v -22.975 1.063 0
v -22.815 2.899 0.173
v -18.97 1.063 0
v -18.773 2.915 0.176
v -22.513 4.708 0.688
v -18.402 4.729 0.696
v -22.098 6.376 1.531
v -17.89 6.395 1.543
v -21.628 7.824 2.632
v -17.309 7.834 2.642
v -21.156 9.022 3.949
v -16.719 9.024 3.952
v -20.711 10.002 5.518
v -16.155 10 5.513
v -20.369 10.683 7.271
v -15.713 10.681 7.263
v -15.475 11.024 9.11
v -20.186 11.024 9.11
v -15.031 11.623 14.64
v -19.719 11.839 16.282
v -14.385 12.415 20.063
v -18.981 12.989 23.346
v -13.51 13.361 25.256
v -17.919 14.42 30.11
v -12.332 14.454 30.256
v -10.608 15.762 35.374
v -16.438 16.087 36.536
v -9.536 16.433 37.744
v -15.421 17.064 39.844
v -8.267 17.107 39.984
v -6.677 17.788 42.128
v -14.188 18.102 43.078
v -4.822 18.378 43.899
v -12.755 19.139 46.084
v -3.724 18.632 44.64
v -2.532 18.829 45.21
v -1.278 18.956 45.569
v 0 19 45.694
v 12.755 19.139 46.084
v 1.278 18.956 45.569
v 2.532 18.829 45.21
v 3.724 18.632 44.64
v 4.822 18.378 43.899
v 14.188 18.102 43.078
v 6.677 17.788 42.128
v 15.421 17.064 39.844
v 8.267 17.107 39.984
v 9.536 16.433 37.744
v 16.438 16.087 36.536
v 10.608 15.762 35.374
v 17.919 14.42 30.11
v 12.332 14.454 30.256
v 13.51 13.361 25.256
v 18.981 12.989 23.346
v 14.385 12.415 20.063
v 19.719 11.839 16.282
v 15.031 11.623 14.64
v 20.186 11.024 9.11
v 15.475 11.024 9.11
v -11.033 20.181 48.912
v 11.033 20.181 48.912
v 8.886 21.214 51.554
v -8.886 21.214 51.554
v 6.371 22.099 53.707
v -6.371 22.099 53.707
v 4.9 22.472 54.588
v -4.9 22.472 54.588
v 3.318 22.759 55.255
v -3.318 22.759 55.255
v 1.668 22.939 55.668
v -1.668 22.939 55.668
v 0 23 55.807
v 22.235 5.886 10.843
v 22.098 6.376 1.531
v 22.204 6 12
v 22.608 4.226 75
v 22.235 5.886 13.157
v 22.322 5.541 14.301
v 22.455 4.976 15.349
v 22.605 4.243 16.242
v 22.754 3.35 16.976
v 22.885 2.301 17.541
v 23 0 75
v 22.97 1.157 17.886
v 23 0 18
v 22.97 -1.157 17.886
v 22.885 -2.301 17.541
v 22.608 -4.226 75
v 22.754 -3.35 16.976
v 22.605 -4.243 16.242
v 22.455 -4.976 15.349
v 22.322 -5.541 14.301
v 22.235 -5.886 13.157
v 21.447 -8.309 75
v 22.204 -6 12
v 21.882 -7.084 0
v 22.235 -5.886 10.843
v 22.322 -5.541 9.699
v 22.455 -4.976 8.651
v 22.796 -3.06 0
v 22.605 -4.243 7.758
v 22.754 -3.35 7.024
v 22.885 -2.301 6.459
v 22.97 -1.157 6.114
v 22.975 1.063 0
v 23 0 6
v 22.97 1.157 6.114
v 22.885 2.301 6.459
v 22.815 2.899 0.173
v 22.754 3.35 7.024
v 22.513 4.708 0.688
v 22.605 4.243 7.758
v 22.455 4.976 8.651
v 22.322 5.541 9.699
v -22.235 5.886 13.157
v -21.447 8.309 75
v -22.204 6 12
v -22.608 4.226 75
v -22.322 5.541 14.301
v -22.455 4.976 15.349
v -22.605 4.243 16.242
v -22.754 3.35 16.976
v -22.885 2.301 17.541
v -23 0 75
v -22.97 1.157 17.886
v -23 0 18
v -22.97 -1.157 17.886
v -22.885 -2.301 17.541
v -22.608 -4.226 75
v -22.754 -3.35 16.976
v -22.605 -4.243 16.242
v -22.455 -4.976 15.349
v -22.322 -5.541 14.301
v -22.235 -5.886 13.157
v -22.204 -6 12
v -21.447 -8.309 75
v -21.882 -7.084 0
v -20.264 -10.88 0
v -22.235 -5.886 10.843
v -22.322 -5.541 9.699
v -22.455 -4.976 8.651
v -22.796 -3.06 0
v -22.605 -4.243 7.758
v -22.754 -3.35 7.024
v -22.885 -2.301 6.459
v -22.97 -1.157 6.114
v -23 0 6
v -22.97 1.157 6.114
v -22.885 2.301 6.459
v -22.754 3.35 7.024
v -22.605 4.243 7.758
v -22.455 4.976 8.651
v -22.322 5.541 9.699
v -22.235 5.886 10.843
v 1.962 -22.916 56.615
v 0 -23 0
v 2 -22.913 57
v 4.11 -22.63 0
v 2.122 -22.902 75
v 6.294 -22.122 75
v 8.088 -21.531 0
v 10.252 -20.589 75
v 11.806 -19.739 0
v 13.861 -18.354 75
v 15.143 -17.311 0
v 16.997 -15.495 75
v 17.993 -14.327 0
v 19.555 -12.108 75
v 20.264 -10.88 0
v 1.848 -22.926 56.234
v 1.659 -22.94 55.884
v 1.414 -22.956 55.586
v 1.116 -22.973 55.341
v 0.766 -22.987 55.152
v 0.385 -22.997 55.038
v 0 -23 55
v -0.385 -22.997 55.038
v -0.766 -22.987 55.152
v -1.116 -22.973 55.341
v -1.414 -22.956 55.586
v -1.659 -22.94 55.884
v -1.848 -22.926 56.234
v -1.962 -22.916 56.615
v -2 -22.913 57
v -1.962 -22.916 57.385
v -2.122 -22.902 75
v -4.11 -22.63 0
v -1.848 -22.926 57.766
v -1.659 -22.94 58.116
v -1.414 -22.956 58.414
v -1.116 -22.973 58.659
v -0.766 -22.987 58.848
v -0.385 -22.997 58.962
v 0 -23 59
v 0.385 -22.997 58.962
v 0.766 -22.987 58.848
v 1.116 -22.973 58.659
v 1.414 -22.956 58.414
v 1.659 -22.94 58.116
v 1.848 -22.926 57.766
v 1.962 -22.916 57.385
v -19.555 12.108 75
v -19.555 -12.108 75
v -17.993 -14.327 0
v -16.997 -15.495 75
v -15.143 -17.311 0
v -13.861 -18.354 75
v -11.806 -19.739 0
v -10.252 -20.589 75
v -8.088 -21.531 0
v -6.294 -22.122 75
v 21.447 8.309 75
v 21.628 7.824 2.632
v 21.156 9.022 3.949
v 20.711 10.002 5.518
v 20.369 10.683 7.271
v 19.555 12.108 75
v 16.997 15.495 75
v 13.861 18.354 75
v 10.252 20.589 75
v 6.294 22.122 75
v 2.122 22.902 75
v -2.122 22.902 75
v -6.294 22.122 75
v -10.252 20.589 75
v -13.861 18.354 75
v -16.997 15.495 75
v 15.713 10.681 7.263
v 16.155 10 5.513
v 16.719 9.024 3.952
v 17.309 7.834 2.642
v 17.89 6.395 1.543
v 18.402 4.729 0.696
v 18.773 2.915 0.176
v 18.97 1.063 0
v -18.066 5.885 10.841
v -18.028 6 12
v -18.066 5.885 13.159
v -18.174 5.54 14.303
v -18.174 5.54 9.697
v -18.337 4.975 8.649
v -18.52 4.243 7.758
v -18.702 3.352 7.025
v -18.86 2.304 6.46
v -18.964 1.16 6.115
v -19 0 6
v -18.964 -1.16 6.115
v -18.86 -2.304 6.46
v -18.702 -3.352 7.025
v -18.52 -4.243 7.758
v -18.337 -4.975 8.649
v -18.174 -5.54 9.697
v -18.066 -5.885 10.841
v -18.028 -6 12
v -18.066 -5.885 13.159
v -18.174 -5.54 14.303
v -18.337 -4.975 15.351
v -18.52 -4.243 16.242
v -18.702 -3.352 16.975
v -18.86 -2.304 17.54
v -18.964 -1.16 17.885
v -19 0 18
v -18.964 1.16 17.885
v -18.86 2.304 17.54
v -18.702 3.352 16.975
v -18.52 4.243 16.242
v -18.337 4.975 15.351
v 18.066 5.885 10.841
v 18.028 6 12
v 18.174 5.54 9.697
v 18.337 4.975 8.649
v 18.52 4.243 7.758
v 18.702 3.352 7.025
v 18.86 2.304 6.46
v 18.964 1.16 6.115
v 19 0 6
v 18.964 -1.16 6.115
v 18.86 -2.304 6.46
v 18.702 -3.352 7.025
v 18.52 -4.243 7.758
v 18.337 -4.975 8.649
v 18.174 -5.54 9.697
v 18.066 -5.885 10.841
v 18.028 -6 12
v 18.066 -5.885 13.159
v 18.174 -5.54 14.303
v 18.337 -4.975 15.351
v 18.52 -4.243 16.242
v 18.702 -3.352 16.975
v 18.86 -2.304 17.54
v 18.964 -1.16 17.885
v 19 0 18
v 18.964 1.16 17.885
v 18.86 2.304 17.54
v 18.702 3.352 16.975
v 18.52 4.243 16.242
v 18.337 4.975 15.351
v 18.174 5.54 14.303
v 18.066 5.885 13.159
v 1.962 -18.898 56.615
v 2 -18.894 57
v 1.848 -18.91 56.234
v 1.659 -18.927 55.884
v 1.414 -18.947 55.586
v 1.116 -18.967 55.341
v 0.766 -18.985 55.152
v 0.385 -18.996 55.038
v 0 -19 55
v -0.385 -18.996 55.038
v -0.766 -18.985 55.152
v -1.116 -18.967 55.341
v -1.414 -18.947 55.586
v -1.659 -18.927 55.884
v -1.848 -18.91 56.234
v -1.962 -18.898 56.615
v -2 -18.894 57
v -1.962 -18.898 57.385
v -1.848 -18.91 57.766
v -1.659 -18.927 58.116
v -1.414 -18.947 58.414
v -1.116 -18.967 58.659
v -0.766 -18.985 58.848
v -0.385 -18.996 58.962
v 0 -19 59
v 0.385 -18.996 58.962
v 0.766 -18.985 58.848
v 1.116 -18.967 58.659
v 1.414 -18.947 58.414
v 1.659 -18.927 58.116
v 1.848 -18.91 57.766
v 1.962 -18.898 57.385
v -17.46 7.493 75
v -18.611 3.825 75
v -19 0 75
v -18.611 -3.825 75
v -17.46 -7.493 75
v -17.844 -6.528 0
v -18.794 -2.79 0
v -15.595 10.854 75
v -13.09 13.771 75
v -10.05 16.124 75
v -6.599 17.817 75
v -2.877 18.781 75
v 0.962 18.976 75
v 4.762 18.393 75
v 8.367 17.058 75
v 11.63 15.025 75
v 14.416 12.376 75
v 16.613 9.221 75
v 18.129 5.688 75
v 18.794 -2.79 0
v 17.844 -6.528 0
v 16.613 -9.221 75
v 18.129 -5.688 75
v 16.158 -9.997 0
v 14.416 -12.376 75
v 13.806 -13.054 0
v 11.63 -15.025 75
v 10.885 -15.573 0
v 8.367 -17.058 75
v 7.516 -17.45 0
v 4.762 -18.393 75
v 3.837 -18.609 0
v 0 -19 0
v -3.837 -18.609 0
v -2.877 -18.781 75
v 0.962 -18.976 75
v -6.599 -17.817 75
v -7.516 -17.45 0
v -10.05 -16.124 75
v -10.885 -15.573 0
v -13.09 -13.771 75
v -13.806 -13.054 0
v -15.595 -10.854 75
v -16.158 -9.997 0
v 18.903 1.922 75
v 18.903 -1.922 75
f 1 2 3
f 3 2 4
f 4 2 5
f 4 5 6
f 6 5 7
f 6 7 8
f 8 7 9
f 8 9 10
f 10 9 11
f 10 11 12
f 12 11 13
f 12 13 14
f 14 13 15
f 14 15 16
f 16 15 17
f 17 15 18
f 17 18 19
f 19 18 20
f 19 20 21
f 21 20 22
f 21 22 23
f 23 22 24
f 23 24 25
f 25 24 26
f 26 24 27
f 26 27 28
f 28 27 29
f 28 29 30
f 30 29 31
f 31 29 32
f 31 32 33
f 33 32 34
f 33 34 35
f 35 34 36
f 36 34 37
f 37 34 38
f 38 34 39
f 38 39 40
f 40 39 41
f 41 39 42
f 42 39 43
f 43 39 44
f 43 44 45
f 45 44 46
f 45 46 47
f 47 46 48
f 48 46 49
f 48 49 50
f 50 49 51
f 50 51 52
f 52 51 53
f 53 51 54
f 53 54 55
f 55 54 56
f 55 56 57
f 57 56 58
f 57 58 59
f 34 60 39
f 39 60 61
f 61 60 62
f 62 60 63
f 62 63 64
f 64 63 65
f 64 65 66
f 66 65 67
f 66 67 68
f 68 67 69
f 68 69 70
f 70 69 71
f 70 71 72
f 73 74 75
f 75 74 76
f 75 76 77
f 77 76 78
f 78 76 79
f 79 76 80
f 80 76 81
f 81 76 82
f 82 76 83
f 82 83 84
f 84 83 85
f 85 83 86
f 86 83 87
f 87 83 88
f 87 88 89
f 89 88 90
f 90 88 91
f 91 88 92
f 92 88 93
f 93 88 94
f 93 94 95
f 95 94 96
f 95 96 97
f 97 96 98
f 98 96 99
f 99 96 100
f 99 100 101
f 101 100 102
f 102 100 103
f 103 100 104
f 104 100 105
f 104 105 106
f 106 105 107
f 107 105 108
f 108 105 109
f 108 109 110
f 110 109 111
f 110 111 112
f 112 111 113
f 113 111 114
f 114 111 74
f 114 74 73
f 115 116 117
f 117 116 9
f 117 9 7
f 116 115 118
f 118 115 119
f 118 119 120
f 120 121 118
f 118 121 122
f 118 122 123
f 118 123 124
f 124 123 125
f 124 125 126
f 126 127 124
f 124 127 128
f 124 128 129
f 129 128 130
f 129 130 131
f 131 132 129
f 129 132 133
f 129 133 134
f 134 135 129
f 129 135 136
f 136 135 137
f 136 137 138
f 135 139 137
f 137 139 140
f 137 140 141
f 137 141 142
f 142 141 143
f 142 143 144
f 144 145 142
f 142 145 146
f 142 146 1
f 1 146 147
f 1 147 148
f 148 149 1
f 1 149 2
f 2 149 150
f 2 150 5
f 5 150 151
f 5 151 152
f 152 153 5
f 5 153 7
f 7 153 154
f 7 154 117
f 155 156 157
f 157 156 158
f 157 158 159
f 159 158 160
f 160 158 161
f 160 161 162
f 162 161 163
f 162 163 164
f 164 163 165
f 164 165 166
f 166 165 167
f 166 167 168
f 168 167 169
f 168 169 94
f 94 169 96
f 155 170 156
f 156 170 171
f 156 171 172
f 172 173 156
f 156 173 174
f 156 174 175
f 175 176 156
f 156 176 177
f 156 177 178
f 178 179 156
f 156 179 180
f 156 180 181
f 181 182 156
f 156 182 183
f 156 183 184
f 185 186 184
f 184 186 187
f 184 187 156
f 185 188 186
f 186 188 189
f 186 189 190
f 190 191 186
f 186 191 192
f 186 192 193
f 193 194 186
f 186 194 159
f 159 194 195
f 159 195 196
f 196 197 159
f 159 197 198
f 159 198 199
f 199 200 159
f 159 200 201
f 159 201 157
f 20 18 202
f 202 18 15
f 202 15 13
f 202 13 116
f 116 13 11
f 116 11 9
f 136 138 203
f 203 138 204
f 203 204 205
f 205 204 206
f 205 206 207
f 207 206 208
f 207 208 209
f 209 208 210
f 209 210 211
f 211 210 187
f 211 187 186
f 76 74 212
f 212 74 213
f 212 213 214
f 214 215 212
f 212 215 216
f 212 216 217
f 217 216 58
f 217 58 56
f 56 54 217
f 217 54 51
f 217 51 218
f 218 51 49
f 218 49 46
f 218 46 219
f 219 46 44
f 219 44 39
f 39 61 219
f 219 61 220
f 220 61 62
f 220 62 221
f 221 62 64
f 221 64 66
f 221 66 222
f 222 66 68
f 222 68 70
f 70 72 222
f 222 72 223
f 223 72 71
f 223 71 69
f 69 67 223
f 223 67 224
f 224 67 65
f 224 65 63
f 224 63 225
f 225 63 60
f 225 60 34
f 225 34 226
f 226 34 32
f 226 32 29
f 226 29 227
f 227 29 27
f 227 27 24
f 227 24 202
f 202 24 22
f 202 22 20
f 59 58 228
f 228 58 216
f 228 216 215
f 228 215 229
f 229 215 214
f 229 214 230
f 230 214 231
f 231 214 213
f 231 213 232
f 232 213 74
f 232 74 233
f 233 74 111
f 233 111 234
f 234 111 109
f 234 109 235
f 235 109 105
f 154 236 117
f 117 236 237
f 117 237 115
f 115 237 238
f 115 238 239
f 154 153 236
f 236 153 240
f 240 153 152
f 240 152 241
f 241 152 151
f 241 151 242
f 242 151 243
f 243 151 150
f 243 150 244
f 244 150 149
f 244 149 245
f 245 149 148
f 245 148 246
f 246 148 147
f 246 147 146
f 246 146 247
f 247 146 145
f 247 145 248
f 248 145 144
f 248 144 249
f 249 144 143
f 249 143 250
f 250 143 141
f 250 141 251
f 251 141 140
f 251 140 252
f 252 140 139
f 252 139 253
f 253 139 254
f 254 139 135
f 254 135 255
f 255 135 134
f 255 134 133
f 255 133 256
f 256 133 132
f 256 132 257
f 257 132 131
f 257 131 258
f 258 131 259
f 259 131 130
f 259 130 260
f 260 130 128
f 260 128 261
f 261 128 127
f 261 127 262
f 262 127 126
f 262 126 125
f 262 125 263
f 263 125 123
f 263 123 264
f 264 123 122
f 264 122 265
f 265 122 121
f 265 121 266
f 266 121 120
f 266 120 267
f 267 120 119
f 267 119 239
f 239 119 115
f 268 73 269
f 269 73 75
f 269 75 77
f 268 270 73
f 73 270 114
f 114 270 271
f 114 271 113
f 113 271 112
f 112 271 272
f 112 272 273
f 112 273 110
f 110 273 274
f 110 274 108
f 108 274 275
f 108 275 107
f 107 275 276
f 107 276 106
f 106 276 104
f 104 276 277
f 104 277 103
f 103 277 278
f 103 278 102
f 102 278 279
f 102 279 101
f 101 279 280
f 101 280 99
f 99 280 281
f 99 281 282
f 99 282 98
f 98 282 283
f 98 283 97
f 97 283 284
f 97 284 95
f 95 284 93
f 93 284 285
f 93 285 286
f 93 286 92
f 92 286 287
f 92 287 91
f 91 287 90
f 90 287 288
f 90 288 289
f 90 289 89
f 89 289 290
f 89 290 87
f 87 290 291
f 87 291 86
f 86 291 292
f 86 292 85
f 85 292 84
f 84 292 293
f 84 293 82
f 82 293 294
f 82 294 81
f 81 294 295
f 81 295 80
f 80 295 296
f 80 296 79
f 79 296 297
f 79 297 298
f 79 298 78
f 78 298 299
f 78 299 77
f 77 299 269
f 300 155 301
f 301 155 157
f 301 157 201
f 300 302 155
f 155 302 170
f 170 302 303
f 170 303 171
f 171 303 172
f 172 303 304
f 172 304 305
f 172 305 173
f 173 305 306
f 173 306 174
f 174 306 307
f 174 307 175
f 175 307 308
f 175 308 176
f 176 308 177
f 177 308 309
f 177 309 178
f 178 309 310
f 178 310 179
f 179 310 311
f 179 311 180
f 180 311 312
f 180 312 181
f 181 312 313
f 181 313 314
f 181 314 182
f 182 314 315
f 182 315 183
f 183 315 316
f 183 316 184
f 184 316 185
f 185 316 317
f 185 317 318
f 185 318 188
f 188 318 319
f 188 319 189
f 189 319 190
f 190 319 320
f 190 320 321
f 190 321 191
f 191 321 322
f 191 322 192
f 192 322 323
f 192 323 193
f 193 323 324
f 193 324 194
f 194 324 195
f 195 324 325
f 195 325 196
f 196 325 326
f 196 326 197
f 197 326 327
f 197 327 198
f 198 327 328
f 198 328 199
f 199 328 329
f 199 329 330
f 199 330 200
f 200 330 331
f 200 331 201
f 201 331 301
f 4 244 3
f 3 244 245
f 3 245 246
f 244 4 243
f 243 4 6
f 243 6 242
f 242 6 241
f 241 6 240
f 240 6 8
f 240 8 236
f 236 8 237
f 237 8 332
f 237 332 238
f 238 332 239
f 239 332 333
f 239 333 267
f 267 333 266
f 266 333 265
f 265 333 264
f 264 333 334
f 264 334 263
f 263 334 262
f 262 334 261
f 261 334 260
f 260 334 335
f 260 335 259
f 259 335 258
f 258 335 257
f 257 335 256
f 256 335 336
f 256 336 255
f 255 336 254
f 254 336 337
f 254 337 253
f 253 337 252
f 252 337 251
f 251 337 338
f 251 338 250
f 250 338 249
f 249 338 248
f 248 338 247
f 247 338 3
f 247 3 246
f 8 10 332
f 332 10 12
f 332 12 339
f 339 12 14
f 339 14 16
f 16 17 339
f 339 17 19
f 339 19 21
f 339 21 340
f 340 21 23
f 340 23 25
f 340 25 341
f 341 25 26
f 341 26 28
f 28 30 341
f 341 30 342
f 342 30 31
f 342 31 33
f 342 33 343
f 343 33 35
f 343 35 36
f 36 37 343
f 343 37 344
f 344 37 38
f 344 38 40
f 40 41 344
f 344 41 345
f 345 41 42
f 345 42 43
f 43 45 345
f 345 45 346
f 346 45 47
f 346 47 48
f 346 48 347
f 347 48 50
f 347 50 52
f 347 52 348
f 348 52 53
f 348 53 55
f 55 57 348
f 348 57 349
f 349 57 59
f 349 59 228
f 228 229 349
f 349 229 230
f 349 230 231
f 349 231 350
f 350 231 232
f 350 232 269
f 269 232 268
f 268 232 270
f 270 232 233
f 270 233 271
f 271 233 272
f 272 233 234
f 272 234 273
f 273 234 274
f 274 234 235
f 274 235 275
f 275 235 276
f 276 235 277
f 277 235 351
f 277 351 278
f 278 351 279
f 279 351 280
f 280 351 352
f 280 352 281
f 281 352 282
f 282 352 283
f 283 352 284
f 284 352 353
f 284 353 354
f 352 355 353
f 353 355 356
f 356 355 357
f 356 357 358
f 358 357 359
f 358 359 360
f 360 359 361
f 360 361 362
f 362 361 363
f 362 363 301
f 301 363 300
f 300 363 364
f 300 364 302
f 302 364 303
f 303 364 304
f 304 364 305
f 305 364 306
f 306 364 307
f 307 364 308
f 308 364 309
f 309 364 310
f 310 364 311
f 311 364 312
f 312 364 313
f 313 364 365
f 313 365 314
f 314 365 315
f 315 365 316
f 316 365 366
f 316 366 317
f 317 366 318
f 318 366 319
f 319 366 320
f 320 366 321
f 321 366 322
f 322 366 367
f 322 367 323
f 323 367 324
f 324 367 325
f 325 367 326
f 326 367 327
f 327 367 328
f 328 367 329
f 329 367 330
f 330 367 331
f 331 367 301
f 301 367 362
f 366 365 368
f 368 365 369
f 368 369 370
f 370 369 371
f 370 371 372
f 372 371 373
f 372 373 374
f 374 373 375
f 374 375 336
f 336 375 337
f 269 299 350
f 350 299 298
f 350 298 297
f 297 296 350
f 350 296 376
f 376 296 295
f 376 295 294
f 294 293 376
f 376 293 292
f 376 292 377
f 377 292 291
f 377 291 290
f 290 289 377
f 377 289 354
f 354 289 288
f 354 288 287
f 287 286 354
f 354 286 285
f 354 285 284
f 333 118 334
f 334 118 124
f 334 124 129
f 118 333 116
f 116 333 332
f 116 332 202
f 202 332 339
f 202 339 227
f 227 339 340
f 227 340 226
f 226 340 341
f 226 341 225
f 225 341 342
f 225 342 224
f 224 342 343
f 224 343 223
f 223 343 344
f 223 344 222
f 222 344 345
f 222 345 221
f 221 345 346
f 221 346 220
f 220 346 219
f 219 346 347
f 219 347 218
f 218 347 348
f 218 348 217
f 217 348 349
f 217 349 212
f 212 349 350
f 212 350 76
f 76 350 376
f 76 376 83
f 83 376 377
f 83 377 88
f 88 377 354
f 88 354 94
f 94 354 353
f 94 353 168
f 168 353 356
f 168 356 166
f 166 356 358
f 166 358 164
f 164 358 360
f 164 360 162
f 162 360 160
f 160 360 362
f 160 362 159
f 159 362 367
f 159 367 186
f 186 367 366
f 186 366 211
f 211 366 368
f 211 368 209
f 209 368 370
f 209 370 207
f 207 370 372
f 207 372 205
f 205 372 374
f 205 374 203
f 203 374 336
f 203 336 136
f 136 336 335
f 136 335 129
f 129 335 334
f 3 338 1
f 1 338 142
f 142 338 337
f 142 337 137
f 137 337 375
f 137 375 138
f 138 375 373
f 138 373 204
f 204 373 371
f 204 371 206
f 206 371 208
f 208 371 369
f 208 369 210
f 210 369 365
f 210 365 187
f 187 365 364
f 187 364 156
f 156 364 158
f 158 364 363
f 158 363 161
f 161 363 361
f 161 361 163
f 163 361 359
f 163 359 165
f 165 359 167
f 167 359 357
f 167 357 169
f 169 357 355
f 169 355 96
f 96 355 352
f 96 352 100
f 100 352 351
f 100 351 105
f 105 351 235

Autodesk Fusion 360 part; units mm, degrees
sketch "Esboço1" plane through (0, 0, 0) normal (0, 0, 1) x (1, 0, 0)
  circle A0 centre (0, 0) radius 19
  circle A1 centre (0, 0) radius 23
  dimension "d1" = 38
  dimension "d4" = 46
extrude "Extrusão1" add sketch "Esboço1" along normal blind 75
sketch "Esboço2" plane through (0, 0, 0) normal (1, 0, 0) x (0, 1, 0)
  line L0 (10.4842, -0.1929) -> (84.4879, -0.1929)
  arc A0 (23, 55.8071) -> (10.4842, -0.1929) centre (159.9133, -4.1911) ccw
  line L1 (23, 55.8071) -> (84.4879, -0.1929)
  line L2 (23, 75) -> (23, 43.6921) construction
  line L3 (23, 75) -> (-23, 75)
  dimension "d25" = 56
extrude "Extrusão2" cut sketch "Esboço2" along normal blind 40 and the other way blind 40
sketch "Esboço3" plane through (0, 0, 0) normal (0, 1, 0) x (1, 0, 0)
  circle A0 centre (0, -57) radius 2
  line L0 (0, 0) -> (0, -86.9144) construction
  dimension "d9" = 57
  dimension "d10" = 4
extrude "Extrusão3" cut sketch "Esboço3" against normal blind 34
sketch "Esboço4" plane through (0, 0, 0) normal (1, 0, 0) x (0, 1, 0)
  line L0 (0, 0) -> (50.9154, 0) construction
  line L1 (0, 0) -> (0, 49.6753) construction
  circle A0 centre (0, 12) radius 6
  circle A1 centre (0, 12) radius 5.5
  dimension "d13" = 12
  dimension "d14" = 12
  dimension "d19" = 11
extrude "Extrusão4" cut sketch "Esboço4" along normal blind 45 and the other way blind 35 contours A0 | A1
fillet "Arredondamento1" radius 10 2 edges at (18.1554, 10.4895, 0) (-18.1554, 10.4895, 0)
equation "d4 = d1 + 8 mm"
